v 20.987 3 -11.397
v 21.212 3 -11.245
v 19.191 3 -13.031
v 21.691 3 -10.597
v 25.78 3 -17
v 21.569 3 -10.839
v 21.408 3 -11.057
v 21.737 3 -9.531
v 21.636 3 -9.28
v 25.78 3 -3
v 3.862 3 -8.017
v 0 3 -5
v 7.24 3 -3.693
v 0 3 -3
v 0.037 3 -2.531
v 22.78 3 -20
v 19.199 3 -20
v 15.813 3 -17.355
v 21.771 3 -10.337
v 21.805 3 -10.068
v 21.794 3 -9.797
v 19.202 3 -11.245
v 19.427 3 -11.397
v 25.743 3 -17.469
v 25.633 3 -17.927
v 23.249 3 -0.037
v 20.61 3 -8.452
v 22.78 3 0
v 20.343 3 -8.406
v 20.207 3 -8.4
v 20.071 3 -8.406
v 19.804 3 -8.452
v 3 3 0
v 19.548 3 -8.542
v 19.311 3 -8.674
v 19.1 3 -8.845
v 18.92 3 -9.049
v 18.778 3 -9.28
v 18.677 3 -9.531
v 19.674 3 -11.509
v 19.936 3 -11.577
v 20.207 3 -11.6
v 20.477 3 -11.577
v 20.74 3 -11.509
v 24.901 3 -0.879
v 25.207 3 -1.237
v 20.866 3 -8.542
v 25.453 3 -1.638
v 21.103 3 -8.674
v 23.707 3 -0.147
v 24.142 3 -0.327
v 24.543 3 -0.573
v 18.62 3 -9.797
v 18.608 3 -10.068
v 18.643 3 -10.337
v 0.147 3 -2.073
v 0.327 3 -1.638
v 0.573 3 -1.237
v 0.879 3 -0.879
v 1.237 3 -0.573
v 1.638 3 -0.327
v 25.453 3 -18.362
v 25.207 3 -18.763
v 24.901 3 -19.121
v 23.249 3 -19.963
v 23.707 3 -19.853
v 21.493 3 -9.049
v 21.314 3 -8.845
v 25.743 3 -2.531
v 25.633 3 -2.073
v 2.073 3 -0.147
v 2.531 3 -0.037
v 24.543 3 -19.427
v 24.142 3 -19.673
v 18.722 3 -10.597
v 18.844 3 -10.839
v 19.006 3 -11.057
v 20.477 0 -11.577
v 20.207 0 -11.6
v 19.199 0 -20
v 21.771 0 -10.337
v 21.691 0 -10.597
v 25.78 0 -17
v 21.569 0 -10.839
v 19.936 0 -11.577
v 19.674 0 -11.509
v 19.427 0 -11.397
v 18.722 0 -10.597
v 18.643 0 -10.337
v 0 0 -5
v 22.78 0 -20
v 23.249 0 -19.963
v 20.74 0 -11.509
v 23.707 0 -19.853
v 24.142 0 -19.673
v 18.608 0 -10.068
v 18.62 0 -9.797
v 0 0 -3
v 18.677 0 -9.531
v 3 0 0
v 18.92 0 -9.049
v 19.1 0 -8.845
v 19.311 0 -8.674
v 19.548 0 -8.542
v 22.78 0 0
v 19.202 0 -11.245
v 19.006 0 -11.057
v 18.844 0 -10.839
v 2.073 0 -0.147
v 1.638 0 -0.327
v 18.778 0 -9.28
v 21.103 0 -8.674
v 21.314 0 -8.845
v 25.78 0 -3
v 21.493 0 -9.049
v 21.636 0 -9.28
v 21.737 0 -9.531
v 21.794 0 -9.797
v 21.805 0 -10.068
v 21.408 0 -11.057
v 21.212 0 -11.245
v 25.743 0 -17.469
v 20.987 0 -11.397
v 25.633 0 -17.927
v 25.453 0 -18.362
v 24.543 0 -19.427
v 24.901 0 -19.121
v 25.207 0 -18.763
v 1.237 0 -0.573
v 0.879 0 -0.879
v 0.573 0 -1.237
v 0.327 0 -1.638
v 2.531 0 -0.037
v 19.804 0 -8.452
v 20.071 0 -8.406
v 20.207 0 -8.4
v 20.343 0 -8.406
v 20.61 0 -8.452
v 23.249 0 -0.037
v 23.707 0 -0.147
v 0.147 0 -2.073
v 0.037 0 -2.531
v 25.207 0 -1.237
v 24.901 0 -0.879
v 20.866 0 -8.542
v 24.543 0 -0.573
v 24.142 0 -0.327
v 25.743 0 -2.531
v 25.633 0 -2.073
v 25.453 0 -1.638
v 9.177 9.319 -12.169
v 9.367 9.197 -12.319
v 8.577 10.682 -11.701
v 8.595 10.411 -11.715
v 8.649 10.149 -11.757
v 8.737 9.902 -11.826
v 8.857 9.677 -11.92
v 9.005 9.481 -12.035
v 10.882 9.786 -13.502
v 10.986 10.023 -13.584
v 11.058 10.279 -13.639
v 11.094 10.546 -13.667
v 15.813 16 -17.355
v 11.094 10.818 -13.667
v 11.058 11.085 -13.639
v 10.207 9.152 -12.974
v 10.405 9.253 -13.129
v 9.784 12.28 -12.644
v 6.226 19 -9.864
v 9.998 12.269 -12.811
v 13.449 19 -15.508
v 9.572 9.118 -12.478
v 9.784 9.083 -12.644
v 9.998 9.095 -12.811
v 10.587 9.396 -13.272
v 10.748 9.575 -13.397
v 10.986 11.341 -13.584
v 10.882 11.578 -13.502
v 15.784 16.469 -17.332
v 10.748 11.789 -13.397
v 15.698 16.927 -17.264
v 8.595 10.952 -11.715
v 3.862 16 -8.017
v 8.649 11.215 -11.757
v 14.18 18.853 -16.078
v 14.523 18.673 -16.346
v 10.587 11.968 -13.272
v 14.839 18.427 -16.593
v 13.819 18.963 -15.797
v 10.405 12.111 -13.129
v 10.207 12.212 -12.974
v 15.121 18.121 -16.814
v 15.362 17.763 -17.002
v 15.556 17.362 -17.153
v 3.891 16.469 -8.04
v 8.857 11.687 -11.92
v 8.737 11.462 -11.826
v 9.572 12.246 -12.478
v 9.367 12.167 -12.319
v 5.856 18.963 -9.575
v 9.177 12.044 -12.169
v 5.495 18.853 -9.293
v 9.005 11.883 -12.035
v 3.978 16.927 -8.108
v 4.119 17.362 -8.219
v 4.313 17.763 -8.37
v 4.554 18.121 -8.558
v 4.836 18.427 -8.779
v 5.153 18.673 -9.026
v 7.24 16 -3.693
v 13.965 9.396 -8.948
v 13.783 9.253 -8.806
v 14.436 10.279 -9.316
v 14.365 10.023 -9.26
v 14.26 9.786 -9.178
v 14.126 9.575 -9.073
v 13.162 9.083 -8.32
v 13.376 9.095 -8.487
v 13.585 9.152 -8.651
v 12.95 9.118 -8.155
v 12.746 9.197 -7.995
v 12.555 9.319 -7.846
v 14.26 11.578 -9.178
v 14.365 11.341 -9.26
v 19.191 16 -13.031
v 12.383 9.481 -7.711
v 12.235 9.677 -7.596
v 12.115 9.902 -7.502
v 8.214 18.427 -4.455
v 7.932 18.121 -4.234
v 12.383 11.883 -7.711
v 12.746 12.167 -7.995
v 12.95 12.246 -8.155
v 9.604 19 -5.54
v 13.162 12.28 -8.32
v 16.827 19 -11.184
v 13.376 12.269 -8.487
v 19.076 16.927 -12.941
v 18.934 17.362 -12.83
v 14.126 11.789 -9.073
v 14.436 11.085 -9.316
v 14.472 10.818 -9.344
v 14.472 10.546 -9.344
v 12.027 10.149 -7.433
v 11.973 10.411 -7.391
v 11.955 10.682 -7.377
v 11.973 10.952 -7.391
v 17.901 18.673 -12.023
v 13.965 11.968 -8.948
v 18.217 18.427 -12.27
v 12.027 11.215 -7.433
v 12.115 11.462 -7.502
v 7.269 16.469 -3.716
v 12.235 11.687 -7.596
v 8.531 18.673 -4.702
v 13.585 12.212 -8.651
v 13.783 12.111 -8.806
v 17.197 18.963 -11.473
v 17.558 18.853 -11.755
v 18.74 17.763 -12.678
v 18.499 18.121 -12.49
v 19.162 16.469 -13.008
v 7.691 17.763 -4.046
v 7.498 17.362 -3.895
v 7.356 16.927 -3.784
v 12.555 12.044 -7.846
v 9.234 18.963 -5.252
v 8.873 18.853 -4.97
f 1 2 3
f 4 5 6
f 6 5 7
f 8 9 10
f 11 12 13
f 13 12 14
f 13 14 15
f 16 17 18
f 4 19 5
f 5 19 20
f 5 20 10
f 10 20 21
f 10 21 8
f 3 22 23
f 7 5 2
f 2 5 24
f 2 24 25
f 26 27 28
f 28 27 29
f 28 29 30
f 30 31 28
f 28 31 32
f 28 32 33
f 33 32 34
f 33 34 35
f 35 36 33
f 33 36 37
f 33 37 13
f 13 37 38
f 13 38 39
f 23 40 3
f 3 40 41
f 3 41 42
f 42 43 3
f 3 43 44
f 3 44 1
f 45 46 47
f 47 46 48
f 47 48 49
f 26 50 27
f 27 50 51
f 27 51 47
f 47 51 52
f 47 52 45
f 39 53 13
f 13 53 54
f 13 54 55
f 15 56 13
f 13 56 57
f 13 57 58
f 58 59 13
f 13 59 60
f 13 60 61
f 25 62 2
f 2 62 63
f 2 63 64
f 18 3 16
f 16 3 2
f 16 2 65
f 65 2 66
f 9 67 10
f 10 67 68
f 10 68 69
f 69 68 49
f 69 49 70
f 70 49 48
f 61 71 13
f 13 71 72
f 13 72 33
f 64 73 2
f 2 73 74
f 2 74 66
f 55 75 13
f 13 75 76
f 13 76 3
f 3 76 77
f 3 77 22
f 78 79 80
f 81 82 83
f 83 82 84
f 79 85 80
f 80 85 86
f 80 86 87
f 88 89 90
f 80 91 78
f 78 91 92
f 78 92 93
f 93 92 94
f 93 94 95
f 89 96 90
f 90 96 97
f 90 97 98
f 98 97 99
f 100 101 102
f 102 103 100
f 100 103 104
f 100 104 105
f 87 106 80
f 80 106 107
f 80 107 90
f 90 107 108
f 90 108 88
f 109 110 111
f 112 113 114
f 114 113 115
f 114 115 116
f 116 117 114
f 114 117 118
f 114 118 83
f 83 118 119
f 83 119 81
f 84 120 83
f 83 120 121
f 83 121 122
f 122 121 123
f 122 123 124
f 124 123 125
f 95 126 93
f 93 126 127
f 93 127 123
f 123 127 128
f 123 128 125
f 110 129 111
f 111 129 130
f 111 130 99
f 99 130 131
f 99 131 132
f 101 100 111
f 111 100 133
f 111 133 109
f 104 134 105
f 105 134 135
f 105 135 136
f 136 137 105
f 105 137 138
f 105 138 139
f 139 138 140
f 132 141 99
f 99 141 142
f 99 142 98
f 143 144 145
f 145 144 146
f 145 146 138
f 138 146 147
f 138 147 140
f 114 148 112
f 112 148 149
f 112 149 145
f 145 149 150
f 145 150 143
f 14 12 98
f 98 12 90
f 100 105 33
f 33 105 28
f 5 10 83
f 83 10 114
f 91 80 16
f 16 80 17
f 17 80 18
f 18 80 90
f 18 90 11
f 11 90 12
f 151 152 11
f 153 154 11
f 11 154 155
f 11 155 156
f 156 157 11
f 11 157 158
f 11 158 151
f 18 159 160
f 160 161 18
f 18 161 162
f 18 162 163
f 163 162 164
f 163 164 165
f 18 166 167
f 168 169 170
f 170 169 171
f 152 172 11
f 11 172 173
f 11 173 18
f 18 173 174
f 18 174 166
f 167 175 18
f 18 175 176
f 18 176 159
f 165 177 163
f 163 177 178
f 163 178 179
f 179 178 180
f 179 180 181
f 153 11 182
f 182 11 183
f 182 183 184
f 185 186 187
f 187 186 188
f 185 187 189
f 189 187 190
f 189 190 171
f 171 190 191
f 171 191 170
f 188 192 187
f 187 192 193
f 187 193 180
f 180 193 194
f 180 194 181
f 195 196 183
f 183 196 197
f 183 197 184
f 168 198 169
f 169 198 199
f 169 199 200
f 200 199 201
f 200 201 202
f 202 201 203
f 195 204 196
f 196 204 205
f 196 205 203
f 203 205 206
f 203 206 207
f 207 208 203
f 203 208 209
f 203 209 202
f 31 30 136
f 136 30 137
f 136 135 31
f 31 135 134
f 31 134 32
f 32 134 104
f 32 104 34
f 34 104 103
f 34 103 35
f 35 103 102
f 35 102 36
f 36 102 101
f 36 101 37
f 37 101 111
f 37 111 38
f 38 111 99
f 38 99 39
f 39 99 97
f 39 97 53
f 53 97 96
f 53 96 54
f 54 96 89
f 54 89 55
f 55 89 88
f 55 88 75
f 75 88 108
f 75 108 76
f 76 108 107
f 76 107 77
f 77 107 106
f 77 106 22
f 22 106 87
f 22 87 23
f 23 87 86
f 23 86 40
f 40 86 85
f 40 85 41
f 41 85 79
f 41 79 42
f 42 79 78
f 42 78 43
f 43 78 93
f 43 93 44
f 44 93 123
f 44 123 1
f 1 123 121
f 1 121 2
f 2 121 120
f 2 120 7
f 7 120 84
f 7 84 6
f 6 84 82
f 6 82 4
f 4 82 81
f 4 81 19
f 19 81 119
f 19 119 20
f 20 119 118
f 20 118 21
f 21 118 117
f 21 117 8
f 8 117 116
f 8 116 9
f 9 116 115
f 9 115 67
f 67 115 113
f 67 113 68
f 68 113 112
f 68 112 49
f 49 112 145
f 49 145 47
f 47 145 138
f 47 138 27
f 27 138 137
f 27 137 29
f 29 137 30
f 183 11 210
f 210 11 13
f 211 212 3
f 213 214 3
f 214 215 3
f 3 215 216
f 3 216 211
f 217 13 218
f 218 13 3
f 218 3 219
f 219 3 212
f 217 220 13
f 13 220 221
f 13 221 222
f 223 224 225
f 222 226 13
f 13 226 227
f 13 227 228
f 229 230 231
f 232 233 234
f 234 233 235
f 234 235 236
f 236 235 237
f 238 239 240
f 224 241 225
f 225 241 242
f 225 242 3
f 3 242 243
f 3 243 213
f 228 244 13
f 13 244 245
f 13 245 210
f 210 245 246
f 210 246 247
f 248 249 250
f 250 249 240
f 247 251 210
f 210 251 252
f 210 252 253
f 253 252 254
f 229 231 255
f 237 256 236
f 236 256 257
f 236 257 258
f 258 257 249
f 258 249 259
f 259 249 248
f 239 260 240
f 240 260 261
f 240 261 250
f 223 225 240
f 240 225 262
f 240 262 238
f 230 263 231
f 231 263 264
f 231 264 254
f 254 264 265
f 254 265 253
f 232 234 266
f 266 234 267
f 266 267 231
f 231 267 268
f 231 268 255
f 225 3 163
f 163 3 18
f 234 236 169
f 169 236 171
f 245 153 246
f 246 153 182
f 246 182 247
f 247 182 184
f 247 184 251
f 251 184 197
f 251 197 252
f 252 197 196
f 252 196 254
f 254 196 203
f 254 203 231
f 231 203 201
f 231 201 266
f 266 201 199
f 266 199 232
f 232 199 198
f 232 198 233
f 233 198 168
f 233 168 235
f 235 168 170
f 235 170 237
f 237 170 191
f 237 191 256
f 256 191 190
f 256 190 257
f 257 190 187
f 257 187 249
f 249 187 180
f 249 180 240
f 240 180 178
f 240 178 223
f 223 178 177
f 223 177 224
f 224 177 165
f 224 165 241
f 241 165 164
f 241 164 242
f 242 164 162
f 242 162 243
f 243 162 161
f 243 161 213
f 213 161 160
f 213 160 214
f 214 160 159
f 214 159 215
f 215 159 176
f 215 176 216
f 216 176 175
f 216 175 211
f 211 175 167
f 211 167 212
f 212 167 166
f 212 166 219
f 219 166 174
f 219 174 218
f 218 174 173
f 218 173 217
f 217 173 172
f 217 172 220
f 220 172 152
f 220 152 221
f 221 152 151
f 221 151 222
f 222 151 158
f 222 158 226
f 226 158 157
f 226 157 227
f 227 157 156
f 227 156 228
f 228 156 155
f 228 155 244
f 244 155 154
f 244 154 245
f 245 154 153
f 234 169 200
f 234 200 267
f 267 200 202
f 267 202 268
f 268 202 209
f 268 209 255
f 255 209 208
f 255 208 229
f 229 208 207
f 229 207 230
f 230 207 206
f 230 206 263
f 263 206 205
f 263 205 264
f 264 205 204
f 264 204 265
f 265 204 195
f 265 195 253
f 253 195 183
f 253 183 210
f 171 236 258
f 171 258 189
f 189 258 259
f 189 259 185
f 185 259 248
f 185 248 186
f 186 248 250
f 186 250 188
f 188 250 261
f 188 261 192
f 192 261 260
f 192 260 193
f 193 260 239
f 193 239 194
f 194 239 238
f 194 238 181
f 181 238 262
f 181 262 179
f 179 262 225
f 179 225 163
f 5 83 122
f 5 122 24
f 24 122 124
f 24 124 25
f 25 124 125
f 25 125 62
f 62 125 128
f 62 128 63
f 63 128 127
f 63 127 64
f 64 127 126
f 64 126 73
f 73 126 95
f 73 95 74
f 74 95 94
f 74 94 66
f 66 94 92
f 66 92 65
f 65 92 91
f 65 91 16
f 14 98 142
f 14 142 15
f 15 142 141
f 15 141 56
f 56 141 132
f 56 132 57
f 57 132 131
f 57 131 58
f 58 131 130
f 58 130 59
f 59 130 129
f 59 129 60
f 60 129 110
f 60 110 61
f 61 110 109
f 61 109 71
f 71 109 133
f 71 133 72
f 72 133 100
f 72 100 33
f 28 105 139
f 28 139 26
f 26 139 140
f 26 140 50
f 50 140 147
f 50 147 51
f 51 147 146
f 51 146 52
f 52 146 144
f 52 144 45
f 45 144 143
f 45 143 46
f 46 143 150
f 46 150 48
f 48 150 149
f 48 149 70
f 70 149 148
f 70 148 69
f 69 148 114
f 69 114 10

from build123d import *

# Parameters (mm, degrees)
SKETCH_1_R          = 1.6
EXTRUDE_1_DEPTH     = 3
EXTRUDE_2_DEPTH     = 16
SKETCH_4_R          = 1.6
CUT_EXTRUDE_2_DEPTH = 38.973677807
FILLET_1_R          = 3


with BuildPart() as part:
    # 草图1 → 凸台-拉伸1 (new body)
    with BuildSketch(Plane(origin=(0, 0, 0), x_dir=(1, 0, 0), z_dir=(0, 1, 0))):
        Polygon((0, 5), (19.199124483, 20), (25.779802397, 20), (25.779802397, 0), (0, 0), align=None)
        with Locations(Location((20.206855342, 10, 0), (0, 0, 270))):
            Circle(SKETCH_1_R, mode=Mode.SUBTRACT)
    extrude(amount=EXTRUDE_1_DEPTH)

    # 草图2 → 凸台-拉伸2 (add)
    with BuildSketch(Plane(origin=(0, 3, 0), x_dir=(1, 0, 0), z_dir=(0, 1, 0))):
        Polygon((3.86182986, 8.017192162), (7.239873376, 3.69349363), (19.191382346, 13.031035803), (15.81333883, 17.354734335), align=None)
    extrude(amount=EXTRUDE_2_DEPTH)

    # 草图4 → 切除-拉伸2 (cut, through all)
    with BuildSketch(Plane(origin=(-2.425739316, 0, -3.104804739), x_dir=(-0.7880107536067209, 0, 0.6156614753256597), z_dir=(-0.6156614753256597, 0, -0.7880107536067209))):
        with Locations((-15.562381102, 10.681901231)):
            Circle(SKETCH_4_R)
    extrude(amount=-CUT_EXTRUDE_2_DEPTH, mode=Mode.SUBTRACT)

    # 圆角1
    fillet_1_edges = [part.edges().sort_by_distance(p)[0] for p in [
        (5.550851618, 19, -5.855342896),
        (17.502360588, 19, -15.192885069),
        (25.779802397, 1.5, -20),
        (0, 1.5, 0),
        (25.779802397, 1.5, 0),
    ]]
    fillet(fillet_1_edges, radius=FILLET_1_R)


solid = part.part
